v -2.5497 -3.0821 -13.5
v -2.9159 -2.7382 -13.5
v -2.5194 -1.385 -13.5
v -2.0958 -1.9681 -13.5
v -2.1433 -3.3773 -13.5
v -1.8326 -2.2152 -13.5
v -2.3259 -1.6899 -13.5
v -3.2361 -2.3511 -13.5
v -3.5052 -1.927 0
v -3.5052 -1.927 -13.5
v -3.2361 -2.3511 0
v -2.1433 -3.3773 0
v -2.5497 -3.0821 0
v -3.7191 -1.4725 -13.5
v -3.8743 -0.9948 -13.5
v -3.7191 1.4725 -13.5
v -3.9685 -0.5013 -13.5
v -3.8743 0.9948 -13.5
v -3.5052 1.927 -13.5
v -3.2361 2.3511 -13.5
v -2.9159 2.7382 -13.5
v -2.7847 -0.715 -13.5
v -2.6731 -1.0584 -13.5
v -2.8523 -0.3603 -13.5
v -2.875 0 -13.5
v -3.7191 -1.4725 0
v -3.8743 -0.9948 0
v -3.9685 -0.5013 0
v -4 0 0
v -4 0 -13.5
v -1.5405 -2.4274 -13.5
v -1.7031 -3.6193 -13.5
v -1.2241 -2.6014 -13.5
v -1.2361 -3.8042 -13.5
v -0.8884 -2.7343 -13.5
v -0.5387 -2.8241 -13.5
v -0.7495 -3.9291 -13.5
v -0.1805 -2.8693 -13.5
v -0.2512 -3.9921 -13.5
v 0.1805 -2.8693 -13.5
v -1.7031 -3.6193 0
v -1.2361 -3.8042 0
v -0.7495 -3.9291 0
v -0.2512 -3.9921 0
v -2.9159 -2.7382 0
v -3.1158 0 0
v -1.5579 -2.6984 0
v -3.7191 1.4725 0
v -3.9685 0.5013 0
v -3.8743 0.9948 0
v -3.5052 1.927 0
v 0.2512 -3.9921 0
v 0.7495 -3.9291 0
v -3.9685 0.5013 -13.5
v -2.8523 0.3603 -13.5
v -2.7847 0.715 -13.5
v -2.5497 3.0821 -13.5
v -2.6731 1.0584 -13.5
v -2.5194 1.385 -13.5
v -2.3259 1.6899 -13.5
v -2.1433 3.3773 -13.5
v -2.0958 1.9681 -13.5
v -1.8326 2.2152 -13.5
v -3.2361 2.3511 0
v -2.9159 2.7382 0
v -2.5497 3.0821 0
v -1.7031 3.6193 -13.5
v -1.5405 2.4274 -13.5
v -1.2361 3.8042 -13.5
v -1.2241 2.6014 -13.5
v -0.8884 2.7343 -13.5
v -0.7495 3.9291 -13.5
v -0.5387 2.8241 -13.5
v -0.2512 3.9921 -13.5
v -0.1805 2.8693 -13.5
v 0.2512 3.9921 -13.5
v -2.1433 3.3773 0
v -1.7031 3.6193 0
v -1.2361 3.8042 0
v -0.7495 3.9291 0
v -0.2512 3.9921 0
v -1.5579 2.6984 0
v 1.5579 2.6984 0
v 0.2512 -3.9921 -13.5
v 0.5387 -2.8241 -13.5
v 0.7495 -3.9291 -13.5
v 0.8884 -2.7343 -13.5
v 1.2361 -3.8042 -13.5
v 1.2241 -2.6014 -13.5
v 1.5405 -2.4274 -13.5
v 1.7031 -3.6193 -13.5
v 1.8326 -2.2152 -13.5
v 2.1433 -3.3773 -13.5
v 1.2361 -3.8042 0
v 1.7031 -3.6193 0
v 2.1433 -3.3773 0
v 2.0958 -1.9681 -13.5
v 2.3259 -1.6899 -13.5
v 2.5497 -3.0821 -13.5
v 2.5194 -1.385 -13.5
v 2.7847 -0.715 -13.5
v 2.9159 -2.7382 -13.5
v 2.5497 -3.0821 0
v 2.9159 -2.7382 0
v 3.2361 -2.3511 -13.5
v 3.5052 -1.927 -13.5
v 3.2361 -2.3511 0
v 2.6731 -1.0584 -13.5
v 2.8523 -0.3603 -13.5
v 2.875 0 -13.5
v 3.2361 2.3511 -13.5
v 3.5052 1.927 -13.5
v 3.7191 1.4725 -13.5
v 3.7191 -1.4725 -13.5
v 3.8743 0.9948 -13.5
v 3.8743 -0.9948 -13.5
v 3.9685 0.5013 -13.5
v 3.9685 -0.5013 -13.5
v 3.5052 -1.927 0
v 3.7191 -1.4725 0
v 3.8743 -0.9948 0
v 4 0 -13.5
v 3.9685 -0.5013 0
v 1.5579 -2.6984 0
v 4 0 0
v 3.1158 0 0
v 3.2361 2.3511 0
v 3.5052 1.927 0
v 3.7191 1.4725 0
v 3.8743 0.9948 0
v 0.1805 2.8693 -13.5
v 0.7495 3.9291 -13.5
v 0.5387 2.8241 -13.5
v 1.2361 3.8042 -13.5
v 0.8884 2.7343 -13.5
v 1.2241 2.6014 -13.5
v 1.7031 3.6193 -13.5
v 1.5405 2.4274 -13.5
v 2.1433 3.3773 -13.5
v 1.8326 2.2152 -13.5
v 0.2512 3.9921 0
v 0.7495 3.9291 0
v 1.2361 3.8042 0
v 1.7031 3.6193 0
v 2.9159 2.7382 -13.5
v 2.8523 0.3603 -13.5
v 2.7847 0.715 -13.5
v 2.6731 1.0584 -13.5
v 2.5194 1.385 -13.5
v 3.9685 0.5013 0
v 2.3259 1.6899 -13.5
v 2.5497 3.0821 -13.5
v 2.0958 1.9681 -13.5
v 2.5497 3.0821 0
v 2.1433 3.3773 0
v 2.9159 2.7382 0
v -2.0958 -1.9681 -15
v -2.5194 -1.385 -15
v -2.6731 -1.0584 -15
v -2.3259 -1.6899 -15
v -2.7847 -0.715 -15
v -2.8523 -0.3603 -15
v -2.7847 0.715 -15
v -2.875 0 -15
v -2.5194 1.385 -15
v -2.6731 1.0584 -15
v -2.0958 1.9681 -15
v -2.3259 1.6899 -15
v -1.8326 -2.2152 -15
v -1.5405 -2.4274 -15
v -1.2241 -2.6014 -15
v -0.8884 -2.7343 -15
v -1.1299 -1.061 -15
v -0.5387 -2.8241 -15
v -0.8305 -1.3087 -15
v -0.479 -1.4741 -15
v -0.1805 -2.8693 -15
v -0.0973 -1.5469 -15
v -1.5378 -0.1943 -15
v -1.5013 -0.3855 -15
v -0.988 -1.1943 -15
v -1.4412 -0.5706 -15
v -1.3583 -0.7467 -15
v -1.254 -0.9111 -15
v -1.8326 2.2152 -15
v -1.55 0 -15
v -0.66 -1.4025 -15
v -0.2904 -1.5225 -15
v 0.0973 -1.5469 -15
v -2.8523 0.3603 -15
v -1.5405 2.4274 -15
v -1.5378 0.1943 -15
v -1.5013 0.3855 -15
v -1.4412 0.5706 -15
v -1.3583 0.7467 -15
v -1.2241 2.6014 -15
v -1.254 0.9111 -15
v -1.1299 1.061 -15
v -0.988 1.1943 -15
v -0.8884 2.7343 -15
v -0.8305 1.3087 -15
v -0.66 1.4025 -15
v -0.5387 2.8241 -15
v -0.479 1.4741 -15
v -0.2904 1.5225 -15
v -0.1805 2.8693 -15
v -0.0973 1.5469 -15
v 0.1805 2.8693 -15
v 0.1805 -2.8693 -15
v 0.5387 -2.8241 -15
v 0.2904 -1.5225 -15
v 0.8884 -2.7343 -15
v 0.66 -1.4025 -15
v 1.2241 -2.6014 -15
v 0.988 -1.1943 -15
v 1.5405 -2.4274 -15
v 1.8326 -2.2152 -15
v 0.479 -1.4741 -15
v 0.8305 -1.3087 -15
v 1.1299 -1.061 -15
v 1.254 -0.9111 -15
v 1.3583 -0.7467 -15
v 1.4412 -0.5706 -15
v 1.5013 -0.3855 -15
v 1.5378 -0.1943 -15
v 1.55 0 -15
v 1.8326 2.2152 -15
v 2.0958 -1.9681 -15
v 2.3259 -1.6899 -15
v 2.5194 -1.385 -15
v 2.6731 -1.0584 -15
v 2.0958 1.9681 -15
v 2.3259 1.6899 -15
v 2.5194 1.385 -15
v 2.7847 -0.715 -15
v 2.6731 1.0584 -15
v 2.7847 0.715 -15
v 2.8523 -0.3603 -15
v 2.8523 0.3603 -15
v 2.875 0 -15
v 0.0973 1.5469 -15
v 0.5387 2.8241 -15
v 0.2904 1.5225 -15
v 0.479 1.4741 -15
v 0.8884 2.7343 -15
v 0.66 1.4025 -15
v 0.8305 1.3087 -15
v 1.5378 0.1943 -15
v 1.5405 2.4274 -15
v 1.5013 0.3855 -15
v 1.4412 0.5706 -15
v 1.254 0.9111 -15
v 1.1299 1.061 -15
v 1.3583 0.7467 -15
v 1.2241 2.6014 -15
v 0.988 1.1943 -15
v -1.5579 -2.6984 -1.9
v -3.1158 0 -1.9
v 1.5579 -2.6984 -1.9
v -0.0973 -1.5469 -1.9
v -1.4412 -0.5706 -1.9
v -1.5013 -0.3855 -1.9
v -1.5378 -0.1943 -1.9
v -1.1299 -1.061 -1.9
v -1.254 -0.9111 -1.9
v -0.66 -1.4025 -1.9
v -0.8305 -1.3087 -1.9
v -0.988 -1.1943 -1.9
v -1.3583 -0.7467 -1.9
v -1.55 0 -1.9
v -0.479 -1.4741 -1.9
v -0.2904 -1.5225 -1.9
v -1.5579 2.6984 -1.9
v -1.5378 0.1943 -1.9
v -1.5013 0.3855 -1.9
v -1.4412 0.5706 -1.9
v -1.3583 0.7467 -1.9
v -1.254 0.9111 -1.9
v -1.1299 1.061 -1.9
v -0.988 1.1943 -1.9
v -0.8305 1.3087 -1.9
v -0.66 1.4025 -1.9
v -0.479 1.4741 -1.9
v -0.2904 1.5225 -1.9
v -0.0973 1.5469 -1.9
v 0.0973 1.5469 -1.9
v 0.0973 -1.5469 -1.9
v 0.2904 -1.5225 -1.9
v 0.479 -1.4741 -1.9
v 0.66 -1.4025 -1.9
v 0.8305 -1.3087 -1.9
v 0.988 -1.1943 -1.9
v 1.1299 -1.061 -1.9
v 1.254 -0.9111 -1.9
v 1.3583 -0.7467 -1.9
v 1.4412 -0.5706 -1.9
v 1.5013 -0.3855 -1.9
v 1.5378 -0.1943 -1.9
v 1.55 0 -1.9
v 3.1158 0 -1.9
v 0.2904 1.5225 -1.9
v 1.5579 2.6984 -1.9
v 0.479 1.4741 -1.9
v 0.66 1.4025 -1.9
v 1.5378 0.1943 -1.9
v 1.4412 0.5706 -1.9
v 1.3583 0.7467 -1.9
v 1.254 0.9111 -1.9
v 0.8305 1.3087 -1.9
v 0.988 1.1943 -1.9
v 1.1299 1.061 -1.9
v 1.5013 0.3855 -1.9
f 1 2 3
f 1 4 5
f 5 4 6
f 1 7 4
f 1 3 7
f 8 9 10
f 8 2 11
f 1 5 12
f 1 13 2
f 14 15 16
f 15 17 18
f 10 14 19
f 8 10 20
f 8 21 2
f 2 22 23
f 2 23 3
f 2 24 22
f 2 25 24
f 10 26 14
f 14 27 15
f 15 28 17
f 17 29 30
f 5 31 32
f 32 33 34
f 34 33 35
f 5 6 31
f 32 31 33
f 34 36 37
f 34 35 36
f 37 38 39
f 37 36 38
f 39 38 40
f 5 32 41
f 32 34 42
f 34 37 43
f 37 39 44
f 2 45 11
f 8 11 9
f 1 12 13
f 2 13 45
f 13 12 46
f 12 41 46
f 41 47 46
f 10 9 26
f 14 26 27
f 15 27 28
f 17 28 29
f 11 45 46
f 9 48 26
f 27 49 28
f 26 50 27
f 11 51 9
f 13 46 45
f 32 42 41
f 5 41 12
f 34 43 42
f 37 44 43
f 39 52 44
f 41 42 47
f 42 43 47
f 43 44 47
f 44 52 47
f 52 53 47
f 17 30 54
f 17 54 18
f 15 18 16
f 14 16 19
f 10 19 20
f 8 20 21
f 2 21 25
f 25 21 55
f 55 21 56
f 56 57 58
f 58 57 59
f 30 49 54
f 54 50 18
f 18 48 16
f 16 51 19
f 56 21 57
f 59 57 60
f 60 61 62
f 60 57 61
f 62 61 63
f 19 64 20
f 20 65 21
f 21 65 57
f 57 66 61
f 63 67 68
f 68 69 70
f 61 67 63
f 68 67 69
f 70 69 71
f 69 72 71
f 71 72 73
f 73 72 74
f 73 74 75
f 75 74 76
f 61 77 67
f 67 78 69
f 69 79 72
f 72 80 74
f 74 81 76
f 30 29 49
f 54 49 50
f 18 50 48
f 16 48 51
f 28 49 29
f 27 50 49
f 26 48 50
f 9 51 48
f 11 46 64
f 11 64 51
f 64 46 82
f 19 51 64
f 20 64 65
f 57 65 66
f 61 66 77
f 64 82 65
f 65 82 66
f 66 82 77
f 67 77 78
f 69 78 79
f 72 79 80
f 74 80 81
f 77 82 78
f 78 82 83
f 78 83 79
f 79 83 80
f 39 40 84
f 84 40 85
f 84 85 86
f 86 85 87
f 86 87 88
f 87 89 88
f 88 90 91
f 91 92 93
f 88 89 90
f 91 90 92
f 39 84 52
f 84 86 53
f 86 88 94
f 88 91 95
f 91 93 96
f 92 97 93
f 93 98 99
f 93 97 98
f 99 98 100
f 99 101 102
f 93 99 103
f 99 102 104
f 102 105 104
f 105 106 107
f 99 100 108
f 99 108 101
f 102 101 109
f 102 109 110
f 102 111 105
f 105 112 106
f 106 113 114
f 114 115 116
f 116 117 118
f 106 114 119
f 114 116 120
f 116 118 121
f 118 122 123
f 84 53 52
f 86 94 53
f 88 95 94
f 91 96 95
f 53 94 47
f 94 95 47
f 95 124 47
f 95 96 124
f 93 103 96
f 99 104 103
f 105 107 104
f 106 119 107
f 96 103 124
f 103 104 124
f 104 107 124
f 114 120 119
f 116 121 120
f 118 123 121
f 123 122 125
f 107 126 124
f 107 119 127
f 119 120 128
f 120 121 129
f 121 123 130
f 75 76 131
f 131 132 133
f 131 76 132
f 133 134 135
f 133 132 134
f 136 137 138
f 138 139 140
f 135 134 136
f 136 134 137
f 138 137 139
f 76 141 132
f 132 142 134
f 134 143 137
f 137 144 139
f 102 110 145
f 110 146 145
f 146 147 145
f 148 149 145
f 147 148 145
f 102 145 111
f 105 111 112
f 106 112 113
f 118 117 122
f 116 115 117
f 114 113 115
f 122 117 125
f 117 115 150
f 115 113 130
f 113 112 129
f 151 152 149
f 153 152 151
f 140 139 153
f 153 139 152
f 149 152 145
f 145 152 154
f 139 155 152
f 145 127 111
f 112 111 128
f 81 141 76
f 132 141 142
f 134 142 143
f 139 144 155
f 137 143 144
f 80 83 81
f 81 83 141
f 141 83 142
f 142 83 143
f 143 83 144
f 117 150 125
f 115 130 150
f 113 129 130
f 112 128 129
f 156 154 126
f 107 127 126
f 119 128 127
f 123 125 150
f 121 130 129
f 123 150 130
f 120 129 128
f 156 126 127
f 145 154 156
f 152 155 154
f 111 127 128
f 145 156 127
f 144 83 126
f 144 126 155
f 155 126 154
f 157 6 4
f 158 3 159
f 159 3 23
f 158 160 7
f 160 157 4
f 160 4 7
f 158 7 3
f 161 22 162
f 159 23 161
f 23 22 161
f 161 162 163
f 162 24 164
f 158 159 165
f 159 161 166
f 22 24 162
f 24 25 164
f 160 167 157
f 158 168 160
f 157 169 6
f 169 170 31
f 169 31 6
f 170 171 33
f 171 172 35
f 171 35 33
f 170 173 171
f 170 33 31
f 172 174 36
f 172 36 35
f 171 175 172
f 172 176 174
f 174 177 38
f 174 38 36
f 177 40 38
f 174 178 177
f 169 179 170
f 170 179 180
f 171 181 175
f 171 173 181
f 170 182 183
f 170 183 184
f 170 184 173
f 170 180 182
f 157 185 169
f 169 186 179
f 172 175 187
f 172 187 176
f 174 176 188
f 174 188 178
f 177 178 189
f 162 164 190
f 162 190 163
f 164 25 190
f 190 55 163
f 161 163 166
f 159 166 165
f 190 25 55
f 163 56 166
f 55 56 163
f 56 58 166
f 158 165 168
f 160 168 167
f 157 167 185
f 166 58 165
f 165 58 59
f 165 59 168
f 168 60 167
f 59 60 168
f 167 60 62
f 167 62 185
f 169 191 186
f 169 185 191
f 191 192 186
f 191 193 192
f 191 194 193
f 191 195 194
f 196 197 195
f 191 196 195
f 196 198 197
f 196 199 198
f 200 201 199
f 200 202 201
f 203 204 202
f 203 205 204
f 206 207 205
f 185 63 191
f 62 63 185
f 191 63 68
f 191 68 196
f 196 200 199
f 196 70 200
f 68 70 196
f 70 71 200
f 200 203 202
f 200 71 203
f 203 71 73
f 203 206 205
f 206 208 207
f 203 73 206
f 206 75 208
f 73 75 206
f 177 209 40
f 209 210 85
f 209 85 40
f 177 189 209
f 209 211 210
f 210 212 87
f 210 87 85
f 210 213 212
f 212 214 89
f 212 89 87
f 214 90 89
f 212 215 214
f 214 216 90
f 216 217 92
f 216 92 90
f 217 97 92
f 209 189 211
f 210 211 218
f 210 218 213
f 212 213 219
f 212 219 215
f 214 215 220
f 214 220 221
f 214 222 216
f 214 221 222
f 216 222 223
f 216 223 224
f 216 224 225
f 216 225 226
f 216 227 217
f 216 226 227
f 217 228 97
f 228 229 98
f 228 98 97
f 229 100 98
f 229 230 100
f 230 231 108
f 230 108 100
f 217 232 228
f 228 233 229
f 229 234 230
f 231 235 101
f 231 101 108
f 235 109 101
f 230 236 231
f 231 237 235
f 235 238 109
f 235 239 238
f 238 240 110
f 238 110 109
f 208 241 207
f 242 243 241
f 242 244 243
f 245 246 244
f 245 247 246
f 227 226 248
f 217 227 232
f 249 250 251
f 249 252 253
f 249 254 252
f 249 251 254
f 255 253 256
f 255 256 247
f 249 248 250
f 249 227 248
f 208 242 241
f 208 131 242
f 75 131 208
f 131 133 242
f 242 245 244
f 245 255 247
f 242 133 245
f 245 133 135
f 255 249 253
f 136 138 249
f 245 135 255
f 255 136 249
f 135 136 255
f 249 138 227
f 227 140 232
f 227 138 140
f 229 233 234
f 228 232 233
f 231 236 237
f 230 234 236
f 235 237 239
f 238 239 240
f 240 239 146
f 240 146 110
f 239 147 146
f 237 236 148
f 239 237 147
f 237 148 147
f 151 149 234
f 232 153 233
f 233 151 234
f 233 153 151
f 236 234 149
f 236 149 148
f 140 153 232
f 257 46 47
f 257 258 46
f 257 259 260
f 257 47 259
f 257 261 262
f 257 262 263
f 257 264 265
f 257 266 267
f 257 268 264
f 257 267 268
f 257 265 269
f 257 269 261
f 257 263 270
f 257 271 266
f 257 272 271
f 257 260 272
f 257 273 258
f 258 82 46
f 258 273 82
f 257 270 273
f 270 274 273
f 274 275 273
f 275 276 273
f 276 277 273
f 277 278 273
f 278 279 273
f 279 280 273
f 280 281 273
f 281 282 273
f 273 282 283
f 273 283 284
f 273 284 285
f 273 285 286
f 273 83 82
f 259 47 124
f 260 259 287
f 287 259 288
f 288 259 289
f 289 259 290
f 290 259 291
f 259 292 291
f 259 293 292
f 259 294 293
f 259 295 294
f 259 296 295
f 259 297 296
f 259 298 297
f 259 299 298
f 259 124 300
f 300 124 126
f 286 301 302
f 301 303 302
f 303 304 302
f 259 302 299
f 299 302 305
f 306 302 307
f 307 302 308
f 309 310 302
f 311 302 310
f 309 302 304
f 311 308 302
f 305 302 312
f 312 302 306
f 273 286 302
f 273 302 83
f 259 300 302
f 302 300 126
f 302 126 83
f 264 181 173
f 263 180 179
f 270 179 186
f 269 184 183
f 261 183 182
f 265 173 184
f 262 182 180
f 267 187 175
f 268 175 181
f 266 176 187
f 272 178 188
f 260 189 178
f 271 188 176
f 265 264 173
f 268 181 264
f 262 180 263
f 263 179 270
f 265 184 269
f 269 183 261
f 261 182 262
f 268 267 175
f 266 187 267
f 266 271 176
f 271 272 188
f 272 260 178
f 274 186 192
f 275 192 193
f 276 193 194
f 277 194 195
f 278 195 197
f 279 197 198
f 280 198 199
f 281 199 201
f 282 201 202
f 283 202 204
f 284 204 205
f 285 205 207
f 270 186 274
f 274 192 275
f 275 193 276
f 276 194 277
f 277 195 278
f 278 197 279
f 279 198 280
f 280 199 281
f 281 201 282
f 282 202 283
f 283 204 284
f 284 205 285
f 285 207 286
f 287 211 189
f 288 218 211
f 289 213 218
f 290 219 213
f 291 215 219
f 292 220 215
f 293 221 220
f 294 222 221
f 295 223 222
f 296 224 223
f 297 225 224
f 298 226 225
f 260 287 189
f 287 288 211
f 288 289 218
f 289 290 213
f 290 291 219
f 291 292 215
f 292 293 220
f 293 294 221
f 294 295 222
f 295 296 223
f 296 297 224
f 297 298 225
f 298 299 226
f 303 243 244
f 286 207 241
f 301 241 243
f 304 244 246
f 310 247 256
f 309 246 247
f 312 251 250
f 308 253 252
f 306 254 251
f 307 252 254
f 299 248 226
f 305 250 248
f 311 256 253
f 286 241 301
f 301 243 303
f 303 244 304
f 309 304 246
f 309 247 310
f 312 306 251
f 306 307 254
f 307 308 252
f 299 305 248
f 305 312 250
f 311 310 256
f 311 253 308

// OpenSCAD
$fn = 50;

difference() {
	union() {
		translate(v = [0, 0, -13.5]) {
			cylinder(h = 13.5, r = 4.0);
		}
		#translate(v = [0, 0, -15.0]) {
			cylinder(h = 15, r = 2.875);
		}
	}
	union() {
		translate(v = [0, 0, 0]) {
			rotate(a = [0, 0, 0]) {
				difference() {
					union() {
						translate(v = [0, 0, -1.9]) {
							linear_extrude(height = 1.9) {
								polygon(points = [[3.1158, 0.0], [1.5579000000000005, 2.698361953111554], [-1.5578999999999994, 2.6983619531115544], [-3.1158, 3.815754496783323e-16], [-1.5579000000000014, -2.6983619531115535], [1.557899999999998, -2.6983619531115552]]);
							}
						}
					}
					union();
				}
			}
		}
		#translate(v = [0, 0, -100.0]) {
			cylinder(h = 200, r = 1.55);
		}
	}
}
